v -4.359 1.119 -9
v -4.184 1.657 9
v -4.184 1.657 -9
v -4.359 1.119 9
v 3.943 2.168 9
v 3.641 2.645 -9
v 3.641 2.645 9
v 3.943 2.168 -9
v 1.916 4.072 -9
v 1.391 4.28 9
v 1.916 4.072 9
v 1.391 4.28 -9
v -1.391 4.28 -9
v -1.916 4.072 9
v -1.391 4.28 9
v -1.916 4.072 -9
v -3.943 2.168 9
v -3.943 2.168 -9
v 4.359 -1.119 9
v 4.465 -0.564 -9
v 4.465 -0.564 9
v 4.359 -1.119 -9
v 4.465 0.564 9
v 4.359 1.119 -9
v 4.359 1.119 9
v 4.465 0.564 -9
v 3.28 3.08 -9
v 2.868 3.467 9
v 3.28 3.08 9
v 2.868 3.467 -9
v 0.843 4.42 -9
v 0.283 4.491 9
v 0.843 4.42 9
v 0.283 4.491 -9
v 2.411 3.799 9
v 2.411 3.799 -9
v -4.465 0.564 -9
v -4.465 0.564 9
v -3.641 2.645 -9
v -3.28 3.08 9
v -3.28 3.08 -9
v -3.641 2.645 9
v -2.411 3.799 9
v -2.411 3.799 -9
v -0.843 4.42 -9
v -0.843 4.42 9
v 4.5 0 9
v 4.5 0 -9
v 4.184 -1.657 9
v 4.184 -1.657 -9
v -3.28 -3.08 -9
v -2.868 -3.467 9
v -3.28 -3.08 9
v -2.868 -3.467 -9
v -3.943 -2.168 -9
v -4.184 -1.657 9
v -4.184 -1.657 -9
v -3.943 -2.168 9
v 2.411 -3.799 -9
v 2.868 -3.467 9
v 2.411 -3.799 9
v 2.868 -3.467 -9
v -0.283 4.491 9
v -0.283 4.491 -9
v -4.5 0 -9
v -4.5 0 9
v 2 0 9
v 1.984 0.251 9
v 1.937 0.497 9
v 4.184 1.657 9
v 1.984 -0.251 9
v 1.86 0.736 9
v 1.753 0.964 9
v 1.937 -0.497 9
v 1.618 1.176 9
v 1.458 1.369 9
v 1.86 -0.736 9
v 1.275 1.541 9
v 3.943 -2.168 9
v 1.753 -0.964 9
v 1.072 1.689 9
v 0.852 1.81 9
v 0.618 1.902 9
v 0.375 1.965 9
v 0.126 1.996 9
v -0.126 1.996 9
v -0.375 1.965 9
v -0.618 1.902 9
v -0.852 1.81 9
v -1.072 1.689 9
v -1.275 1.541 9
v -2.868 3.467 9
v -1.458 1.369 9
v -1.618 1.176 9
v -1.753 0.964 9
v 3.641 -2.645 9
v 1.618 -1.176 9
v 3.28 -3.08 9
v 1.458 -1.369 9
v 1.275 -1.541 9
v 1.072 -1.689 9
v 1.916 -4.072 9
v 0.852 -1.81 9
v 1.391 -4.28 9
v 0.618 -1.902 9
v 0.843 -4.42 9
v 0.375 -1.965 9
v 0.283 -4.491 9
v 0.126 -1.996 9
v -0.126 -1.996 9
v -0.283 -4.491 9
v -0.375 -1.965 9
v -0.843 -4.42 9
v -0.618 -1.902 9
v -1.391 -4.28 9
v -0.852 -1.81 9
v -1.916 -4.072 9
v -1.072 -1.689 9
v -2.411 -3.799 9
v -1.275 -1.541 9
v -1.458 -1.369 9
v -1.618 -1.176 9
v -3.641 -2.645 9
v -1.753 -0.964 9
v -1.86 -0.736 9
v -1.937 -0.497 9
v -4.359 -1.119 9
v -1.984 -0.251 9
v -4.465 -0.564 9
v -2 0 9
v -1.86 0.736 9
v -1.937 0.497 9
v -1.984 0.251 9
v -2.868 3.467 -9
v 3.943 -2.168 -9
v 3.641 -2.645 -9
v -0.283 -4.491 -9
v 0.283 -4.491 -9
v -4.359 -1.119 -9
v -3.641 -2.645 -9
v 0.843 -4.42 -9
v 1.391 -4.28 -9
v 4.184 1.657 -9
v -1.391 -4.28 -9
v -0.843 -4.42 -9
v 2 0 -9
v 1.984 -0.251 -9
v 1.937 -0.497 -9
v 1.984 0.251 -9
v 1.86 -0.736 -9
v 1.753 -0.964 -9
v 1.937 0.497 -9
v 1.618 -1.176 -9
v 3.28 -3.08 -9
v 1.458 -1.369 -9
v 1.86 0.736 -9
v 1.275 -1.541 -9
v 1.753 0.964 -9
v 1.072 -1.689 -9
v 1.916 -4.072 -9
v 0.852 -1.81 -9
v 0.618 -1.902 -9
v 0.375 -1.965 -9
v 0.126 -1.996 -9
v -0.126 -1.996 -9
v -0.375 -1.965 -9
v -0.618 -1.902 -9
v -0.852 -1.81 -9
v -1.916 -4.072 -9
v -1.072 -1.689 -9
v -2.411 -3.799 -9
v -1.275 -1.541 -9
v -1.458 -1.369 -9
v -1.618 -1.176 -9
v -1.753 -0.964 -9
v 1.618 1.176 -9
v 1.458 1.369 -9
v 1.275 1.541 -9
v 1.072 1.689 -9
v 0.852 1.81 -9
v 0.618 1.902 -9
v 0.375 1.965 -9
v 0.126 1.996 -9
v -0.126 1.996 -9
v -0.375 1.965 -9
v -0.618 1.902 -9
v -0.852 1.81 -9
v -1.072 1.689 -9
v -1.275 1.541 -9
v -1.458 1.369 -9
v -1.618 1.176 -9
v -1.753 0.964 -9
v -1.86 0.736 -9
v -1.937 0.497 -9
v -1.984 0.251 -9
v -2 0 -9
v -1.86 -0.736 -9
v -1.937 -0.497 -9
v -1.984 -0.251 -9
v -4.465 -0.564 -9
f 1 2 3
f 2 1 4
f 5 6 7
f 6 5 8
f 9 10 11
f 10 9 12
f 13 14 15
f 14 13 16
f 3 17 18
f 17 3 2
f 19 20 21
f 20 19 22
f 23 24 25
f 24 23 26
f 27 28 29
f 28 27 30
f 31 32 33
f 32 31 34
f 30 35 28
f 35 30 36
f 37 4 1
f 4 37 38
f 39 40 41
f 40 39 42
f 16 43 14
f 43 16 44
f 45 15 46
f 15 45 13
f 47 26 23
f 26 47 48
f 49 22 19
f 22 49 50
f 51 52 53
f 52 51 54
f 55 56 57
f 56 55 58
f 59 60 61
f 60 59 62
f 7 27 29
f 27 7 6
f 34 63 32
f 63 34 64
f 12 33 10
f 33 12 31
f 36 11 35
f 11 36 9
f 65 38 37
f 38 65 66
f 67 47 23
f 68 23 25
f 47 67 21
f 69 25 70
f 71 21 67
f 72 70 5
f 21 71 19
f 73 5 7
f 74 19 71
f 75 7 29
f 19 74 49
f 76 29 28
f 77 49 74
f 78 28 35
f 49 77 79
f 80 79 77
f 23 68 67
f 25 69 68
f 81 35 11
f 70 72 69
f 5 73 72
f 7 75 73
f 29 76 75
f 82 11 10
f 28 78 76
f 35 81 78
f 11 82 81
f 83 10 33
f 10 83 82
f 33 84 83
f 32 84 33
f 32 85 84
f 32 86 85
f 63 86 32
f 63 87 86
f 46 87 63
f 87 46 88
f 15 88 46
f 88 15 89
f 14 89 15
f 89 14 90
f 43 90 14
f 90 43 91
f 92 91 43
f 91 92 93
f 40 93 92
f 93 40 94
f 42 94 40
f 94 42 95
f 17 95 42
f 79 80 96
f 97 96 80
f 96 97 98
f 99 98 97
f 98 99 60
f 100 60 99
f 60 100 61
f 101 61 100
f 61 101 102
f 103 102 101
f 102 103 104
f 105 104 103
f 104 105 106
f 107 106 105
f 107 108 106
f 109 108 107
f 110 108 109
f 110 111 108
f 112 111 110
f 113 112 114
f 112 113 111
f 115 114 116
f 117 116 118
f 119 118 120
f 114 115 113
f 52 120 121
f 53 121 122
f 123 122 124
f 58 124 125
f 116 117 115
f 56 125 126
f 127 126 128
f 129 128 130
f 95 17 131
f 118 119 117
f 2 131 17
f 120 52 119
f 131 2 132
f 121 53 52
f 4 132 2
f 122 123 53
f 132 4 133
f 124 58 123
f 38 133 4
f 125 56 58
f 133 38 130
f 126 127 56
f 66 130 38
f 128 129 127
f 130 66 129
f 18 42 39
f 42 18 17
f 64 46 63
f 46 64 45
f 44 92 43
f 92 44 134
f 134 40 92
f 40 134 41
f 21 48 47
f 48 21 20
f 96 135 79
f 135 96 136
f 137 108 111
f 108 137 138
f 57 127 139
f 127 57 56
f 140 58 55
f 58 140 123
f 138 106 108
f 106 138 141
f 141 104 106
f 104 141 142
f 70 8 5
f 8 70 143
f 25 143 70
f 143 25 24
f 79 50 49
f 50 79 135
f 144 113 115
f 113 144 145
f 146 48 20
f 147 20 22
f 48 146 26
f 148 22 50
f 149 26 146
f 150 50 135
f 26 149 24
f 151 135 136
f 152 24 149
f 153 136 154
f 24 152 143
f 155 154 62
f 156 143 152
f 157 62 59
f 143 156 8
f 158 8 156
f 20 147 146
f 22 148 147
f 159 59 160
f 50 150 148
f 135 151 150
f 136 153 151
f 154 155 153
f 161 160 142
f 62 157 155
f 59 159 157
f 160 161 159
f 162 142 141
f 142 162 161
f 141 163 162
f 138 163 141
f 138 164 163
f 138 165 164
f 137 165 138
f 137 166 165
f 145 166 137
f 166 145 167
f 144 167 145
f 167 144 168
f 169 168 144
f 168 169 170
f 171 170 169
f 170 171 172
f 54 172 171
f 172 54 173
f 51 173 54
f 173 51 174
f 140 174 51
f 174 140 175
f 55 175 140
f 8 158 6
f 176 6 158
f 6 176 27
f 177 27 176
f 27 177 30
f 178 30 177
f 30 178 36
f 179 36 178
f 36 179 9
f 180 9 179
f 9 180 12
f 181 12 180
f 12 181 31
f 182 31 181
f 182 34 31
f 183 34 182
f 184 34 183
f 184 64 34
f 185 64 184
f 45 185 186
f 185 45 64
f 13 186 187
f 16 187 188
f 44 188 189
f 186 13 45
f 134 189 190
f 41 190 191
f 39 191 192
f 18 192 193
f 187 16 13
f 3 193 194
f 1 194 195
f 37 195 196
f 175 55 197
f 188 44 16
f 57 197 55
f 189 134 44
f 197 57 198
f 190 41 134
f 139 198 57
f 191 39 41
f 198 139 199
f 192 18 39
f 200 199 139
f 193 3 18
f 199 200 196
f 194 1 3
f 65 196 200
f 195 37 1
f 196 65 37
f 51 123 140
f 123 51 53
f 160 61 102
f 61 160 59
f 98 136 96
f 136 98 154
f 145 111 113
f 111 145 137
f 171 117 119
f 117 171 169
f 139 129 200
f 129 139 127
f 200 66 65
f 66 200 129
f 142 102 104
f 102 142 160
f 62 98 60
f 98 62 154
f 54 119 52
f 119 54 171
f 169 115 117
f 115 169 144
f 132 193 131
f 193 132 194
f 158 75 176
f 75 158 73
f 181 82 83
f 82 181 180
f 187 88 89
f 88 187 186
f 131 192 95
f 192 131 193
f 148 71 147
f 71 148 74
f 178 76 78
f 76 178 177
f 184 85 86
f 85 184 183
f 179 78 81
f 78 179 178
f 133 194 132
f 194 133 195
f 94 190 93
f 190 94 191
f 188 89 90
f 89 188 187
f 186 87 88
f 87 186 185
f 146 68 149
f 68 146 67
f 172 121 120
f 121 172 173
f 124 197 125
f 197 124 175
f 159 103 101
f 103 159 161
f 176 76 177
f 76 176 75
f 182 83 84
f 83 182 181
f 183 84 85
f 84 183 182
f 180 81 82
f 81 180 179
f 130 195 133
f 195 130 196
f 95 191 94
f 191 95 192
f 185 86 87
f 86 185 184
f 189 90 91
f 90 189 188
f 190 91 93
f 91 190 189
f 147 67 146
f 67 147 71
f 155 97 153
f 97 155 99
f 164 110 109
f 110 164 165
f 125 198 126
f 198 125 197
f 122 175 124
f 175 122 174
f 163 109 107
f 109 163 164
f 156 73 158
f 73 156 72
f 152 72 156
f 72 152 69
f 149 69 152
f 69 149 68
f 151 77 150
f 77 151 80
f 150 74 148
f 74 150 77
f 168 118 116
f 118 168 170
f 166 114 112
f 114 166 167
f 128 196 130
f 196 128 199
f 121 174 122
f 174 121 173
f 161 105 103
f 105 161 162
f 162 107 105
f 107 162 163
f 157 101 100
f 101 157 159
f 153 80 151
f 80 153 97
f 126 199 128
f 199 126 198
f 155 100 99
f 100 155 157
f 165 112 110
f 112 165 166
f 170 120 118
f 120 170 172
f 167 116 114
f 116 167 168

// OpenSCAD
$fn = 50;


difference() {
	union() {
		translate(v = [0, 0, -9.0000000000]) {
			cylinder(h = 18, r = 4.5000000000);
		}
	}
	union() {
		translate(v = [0, 0, -100.0000000000]) {
			cylinder(h = 200, r = 2);
		}
	}
}
